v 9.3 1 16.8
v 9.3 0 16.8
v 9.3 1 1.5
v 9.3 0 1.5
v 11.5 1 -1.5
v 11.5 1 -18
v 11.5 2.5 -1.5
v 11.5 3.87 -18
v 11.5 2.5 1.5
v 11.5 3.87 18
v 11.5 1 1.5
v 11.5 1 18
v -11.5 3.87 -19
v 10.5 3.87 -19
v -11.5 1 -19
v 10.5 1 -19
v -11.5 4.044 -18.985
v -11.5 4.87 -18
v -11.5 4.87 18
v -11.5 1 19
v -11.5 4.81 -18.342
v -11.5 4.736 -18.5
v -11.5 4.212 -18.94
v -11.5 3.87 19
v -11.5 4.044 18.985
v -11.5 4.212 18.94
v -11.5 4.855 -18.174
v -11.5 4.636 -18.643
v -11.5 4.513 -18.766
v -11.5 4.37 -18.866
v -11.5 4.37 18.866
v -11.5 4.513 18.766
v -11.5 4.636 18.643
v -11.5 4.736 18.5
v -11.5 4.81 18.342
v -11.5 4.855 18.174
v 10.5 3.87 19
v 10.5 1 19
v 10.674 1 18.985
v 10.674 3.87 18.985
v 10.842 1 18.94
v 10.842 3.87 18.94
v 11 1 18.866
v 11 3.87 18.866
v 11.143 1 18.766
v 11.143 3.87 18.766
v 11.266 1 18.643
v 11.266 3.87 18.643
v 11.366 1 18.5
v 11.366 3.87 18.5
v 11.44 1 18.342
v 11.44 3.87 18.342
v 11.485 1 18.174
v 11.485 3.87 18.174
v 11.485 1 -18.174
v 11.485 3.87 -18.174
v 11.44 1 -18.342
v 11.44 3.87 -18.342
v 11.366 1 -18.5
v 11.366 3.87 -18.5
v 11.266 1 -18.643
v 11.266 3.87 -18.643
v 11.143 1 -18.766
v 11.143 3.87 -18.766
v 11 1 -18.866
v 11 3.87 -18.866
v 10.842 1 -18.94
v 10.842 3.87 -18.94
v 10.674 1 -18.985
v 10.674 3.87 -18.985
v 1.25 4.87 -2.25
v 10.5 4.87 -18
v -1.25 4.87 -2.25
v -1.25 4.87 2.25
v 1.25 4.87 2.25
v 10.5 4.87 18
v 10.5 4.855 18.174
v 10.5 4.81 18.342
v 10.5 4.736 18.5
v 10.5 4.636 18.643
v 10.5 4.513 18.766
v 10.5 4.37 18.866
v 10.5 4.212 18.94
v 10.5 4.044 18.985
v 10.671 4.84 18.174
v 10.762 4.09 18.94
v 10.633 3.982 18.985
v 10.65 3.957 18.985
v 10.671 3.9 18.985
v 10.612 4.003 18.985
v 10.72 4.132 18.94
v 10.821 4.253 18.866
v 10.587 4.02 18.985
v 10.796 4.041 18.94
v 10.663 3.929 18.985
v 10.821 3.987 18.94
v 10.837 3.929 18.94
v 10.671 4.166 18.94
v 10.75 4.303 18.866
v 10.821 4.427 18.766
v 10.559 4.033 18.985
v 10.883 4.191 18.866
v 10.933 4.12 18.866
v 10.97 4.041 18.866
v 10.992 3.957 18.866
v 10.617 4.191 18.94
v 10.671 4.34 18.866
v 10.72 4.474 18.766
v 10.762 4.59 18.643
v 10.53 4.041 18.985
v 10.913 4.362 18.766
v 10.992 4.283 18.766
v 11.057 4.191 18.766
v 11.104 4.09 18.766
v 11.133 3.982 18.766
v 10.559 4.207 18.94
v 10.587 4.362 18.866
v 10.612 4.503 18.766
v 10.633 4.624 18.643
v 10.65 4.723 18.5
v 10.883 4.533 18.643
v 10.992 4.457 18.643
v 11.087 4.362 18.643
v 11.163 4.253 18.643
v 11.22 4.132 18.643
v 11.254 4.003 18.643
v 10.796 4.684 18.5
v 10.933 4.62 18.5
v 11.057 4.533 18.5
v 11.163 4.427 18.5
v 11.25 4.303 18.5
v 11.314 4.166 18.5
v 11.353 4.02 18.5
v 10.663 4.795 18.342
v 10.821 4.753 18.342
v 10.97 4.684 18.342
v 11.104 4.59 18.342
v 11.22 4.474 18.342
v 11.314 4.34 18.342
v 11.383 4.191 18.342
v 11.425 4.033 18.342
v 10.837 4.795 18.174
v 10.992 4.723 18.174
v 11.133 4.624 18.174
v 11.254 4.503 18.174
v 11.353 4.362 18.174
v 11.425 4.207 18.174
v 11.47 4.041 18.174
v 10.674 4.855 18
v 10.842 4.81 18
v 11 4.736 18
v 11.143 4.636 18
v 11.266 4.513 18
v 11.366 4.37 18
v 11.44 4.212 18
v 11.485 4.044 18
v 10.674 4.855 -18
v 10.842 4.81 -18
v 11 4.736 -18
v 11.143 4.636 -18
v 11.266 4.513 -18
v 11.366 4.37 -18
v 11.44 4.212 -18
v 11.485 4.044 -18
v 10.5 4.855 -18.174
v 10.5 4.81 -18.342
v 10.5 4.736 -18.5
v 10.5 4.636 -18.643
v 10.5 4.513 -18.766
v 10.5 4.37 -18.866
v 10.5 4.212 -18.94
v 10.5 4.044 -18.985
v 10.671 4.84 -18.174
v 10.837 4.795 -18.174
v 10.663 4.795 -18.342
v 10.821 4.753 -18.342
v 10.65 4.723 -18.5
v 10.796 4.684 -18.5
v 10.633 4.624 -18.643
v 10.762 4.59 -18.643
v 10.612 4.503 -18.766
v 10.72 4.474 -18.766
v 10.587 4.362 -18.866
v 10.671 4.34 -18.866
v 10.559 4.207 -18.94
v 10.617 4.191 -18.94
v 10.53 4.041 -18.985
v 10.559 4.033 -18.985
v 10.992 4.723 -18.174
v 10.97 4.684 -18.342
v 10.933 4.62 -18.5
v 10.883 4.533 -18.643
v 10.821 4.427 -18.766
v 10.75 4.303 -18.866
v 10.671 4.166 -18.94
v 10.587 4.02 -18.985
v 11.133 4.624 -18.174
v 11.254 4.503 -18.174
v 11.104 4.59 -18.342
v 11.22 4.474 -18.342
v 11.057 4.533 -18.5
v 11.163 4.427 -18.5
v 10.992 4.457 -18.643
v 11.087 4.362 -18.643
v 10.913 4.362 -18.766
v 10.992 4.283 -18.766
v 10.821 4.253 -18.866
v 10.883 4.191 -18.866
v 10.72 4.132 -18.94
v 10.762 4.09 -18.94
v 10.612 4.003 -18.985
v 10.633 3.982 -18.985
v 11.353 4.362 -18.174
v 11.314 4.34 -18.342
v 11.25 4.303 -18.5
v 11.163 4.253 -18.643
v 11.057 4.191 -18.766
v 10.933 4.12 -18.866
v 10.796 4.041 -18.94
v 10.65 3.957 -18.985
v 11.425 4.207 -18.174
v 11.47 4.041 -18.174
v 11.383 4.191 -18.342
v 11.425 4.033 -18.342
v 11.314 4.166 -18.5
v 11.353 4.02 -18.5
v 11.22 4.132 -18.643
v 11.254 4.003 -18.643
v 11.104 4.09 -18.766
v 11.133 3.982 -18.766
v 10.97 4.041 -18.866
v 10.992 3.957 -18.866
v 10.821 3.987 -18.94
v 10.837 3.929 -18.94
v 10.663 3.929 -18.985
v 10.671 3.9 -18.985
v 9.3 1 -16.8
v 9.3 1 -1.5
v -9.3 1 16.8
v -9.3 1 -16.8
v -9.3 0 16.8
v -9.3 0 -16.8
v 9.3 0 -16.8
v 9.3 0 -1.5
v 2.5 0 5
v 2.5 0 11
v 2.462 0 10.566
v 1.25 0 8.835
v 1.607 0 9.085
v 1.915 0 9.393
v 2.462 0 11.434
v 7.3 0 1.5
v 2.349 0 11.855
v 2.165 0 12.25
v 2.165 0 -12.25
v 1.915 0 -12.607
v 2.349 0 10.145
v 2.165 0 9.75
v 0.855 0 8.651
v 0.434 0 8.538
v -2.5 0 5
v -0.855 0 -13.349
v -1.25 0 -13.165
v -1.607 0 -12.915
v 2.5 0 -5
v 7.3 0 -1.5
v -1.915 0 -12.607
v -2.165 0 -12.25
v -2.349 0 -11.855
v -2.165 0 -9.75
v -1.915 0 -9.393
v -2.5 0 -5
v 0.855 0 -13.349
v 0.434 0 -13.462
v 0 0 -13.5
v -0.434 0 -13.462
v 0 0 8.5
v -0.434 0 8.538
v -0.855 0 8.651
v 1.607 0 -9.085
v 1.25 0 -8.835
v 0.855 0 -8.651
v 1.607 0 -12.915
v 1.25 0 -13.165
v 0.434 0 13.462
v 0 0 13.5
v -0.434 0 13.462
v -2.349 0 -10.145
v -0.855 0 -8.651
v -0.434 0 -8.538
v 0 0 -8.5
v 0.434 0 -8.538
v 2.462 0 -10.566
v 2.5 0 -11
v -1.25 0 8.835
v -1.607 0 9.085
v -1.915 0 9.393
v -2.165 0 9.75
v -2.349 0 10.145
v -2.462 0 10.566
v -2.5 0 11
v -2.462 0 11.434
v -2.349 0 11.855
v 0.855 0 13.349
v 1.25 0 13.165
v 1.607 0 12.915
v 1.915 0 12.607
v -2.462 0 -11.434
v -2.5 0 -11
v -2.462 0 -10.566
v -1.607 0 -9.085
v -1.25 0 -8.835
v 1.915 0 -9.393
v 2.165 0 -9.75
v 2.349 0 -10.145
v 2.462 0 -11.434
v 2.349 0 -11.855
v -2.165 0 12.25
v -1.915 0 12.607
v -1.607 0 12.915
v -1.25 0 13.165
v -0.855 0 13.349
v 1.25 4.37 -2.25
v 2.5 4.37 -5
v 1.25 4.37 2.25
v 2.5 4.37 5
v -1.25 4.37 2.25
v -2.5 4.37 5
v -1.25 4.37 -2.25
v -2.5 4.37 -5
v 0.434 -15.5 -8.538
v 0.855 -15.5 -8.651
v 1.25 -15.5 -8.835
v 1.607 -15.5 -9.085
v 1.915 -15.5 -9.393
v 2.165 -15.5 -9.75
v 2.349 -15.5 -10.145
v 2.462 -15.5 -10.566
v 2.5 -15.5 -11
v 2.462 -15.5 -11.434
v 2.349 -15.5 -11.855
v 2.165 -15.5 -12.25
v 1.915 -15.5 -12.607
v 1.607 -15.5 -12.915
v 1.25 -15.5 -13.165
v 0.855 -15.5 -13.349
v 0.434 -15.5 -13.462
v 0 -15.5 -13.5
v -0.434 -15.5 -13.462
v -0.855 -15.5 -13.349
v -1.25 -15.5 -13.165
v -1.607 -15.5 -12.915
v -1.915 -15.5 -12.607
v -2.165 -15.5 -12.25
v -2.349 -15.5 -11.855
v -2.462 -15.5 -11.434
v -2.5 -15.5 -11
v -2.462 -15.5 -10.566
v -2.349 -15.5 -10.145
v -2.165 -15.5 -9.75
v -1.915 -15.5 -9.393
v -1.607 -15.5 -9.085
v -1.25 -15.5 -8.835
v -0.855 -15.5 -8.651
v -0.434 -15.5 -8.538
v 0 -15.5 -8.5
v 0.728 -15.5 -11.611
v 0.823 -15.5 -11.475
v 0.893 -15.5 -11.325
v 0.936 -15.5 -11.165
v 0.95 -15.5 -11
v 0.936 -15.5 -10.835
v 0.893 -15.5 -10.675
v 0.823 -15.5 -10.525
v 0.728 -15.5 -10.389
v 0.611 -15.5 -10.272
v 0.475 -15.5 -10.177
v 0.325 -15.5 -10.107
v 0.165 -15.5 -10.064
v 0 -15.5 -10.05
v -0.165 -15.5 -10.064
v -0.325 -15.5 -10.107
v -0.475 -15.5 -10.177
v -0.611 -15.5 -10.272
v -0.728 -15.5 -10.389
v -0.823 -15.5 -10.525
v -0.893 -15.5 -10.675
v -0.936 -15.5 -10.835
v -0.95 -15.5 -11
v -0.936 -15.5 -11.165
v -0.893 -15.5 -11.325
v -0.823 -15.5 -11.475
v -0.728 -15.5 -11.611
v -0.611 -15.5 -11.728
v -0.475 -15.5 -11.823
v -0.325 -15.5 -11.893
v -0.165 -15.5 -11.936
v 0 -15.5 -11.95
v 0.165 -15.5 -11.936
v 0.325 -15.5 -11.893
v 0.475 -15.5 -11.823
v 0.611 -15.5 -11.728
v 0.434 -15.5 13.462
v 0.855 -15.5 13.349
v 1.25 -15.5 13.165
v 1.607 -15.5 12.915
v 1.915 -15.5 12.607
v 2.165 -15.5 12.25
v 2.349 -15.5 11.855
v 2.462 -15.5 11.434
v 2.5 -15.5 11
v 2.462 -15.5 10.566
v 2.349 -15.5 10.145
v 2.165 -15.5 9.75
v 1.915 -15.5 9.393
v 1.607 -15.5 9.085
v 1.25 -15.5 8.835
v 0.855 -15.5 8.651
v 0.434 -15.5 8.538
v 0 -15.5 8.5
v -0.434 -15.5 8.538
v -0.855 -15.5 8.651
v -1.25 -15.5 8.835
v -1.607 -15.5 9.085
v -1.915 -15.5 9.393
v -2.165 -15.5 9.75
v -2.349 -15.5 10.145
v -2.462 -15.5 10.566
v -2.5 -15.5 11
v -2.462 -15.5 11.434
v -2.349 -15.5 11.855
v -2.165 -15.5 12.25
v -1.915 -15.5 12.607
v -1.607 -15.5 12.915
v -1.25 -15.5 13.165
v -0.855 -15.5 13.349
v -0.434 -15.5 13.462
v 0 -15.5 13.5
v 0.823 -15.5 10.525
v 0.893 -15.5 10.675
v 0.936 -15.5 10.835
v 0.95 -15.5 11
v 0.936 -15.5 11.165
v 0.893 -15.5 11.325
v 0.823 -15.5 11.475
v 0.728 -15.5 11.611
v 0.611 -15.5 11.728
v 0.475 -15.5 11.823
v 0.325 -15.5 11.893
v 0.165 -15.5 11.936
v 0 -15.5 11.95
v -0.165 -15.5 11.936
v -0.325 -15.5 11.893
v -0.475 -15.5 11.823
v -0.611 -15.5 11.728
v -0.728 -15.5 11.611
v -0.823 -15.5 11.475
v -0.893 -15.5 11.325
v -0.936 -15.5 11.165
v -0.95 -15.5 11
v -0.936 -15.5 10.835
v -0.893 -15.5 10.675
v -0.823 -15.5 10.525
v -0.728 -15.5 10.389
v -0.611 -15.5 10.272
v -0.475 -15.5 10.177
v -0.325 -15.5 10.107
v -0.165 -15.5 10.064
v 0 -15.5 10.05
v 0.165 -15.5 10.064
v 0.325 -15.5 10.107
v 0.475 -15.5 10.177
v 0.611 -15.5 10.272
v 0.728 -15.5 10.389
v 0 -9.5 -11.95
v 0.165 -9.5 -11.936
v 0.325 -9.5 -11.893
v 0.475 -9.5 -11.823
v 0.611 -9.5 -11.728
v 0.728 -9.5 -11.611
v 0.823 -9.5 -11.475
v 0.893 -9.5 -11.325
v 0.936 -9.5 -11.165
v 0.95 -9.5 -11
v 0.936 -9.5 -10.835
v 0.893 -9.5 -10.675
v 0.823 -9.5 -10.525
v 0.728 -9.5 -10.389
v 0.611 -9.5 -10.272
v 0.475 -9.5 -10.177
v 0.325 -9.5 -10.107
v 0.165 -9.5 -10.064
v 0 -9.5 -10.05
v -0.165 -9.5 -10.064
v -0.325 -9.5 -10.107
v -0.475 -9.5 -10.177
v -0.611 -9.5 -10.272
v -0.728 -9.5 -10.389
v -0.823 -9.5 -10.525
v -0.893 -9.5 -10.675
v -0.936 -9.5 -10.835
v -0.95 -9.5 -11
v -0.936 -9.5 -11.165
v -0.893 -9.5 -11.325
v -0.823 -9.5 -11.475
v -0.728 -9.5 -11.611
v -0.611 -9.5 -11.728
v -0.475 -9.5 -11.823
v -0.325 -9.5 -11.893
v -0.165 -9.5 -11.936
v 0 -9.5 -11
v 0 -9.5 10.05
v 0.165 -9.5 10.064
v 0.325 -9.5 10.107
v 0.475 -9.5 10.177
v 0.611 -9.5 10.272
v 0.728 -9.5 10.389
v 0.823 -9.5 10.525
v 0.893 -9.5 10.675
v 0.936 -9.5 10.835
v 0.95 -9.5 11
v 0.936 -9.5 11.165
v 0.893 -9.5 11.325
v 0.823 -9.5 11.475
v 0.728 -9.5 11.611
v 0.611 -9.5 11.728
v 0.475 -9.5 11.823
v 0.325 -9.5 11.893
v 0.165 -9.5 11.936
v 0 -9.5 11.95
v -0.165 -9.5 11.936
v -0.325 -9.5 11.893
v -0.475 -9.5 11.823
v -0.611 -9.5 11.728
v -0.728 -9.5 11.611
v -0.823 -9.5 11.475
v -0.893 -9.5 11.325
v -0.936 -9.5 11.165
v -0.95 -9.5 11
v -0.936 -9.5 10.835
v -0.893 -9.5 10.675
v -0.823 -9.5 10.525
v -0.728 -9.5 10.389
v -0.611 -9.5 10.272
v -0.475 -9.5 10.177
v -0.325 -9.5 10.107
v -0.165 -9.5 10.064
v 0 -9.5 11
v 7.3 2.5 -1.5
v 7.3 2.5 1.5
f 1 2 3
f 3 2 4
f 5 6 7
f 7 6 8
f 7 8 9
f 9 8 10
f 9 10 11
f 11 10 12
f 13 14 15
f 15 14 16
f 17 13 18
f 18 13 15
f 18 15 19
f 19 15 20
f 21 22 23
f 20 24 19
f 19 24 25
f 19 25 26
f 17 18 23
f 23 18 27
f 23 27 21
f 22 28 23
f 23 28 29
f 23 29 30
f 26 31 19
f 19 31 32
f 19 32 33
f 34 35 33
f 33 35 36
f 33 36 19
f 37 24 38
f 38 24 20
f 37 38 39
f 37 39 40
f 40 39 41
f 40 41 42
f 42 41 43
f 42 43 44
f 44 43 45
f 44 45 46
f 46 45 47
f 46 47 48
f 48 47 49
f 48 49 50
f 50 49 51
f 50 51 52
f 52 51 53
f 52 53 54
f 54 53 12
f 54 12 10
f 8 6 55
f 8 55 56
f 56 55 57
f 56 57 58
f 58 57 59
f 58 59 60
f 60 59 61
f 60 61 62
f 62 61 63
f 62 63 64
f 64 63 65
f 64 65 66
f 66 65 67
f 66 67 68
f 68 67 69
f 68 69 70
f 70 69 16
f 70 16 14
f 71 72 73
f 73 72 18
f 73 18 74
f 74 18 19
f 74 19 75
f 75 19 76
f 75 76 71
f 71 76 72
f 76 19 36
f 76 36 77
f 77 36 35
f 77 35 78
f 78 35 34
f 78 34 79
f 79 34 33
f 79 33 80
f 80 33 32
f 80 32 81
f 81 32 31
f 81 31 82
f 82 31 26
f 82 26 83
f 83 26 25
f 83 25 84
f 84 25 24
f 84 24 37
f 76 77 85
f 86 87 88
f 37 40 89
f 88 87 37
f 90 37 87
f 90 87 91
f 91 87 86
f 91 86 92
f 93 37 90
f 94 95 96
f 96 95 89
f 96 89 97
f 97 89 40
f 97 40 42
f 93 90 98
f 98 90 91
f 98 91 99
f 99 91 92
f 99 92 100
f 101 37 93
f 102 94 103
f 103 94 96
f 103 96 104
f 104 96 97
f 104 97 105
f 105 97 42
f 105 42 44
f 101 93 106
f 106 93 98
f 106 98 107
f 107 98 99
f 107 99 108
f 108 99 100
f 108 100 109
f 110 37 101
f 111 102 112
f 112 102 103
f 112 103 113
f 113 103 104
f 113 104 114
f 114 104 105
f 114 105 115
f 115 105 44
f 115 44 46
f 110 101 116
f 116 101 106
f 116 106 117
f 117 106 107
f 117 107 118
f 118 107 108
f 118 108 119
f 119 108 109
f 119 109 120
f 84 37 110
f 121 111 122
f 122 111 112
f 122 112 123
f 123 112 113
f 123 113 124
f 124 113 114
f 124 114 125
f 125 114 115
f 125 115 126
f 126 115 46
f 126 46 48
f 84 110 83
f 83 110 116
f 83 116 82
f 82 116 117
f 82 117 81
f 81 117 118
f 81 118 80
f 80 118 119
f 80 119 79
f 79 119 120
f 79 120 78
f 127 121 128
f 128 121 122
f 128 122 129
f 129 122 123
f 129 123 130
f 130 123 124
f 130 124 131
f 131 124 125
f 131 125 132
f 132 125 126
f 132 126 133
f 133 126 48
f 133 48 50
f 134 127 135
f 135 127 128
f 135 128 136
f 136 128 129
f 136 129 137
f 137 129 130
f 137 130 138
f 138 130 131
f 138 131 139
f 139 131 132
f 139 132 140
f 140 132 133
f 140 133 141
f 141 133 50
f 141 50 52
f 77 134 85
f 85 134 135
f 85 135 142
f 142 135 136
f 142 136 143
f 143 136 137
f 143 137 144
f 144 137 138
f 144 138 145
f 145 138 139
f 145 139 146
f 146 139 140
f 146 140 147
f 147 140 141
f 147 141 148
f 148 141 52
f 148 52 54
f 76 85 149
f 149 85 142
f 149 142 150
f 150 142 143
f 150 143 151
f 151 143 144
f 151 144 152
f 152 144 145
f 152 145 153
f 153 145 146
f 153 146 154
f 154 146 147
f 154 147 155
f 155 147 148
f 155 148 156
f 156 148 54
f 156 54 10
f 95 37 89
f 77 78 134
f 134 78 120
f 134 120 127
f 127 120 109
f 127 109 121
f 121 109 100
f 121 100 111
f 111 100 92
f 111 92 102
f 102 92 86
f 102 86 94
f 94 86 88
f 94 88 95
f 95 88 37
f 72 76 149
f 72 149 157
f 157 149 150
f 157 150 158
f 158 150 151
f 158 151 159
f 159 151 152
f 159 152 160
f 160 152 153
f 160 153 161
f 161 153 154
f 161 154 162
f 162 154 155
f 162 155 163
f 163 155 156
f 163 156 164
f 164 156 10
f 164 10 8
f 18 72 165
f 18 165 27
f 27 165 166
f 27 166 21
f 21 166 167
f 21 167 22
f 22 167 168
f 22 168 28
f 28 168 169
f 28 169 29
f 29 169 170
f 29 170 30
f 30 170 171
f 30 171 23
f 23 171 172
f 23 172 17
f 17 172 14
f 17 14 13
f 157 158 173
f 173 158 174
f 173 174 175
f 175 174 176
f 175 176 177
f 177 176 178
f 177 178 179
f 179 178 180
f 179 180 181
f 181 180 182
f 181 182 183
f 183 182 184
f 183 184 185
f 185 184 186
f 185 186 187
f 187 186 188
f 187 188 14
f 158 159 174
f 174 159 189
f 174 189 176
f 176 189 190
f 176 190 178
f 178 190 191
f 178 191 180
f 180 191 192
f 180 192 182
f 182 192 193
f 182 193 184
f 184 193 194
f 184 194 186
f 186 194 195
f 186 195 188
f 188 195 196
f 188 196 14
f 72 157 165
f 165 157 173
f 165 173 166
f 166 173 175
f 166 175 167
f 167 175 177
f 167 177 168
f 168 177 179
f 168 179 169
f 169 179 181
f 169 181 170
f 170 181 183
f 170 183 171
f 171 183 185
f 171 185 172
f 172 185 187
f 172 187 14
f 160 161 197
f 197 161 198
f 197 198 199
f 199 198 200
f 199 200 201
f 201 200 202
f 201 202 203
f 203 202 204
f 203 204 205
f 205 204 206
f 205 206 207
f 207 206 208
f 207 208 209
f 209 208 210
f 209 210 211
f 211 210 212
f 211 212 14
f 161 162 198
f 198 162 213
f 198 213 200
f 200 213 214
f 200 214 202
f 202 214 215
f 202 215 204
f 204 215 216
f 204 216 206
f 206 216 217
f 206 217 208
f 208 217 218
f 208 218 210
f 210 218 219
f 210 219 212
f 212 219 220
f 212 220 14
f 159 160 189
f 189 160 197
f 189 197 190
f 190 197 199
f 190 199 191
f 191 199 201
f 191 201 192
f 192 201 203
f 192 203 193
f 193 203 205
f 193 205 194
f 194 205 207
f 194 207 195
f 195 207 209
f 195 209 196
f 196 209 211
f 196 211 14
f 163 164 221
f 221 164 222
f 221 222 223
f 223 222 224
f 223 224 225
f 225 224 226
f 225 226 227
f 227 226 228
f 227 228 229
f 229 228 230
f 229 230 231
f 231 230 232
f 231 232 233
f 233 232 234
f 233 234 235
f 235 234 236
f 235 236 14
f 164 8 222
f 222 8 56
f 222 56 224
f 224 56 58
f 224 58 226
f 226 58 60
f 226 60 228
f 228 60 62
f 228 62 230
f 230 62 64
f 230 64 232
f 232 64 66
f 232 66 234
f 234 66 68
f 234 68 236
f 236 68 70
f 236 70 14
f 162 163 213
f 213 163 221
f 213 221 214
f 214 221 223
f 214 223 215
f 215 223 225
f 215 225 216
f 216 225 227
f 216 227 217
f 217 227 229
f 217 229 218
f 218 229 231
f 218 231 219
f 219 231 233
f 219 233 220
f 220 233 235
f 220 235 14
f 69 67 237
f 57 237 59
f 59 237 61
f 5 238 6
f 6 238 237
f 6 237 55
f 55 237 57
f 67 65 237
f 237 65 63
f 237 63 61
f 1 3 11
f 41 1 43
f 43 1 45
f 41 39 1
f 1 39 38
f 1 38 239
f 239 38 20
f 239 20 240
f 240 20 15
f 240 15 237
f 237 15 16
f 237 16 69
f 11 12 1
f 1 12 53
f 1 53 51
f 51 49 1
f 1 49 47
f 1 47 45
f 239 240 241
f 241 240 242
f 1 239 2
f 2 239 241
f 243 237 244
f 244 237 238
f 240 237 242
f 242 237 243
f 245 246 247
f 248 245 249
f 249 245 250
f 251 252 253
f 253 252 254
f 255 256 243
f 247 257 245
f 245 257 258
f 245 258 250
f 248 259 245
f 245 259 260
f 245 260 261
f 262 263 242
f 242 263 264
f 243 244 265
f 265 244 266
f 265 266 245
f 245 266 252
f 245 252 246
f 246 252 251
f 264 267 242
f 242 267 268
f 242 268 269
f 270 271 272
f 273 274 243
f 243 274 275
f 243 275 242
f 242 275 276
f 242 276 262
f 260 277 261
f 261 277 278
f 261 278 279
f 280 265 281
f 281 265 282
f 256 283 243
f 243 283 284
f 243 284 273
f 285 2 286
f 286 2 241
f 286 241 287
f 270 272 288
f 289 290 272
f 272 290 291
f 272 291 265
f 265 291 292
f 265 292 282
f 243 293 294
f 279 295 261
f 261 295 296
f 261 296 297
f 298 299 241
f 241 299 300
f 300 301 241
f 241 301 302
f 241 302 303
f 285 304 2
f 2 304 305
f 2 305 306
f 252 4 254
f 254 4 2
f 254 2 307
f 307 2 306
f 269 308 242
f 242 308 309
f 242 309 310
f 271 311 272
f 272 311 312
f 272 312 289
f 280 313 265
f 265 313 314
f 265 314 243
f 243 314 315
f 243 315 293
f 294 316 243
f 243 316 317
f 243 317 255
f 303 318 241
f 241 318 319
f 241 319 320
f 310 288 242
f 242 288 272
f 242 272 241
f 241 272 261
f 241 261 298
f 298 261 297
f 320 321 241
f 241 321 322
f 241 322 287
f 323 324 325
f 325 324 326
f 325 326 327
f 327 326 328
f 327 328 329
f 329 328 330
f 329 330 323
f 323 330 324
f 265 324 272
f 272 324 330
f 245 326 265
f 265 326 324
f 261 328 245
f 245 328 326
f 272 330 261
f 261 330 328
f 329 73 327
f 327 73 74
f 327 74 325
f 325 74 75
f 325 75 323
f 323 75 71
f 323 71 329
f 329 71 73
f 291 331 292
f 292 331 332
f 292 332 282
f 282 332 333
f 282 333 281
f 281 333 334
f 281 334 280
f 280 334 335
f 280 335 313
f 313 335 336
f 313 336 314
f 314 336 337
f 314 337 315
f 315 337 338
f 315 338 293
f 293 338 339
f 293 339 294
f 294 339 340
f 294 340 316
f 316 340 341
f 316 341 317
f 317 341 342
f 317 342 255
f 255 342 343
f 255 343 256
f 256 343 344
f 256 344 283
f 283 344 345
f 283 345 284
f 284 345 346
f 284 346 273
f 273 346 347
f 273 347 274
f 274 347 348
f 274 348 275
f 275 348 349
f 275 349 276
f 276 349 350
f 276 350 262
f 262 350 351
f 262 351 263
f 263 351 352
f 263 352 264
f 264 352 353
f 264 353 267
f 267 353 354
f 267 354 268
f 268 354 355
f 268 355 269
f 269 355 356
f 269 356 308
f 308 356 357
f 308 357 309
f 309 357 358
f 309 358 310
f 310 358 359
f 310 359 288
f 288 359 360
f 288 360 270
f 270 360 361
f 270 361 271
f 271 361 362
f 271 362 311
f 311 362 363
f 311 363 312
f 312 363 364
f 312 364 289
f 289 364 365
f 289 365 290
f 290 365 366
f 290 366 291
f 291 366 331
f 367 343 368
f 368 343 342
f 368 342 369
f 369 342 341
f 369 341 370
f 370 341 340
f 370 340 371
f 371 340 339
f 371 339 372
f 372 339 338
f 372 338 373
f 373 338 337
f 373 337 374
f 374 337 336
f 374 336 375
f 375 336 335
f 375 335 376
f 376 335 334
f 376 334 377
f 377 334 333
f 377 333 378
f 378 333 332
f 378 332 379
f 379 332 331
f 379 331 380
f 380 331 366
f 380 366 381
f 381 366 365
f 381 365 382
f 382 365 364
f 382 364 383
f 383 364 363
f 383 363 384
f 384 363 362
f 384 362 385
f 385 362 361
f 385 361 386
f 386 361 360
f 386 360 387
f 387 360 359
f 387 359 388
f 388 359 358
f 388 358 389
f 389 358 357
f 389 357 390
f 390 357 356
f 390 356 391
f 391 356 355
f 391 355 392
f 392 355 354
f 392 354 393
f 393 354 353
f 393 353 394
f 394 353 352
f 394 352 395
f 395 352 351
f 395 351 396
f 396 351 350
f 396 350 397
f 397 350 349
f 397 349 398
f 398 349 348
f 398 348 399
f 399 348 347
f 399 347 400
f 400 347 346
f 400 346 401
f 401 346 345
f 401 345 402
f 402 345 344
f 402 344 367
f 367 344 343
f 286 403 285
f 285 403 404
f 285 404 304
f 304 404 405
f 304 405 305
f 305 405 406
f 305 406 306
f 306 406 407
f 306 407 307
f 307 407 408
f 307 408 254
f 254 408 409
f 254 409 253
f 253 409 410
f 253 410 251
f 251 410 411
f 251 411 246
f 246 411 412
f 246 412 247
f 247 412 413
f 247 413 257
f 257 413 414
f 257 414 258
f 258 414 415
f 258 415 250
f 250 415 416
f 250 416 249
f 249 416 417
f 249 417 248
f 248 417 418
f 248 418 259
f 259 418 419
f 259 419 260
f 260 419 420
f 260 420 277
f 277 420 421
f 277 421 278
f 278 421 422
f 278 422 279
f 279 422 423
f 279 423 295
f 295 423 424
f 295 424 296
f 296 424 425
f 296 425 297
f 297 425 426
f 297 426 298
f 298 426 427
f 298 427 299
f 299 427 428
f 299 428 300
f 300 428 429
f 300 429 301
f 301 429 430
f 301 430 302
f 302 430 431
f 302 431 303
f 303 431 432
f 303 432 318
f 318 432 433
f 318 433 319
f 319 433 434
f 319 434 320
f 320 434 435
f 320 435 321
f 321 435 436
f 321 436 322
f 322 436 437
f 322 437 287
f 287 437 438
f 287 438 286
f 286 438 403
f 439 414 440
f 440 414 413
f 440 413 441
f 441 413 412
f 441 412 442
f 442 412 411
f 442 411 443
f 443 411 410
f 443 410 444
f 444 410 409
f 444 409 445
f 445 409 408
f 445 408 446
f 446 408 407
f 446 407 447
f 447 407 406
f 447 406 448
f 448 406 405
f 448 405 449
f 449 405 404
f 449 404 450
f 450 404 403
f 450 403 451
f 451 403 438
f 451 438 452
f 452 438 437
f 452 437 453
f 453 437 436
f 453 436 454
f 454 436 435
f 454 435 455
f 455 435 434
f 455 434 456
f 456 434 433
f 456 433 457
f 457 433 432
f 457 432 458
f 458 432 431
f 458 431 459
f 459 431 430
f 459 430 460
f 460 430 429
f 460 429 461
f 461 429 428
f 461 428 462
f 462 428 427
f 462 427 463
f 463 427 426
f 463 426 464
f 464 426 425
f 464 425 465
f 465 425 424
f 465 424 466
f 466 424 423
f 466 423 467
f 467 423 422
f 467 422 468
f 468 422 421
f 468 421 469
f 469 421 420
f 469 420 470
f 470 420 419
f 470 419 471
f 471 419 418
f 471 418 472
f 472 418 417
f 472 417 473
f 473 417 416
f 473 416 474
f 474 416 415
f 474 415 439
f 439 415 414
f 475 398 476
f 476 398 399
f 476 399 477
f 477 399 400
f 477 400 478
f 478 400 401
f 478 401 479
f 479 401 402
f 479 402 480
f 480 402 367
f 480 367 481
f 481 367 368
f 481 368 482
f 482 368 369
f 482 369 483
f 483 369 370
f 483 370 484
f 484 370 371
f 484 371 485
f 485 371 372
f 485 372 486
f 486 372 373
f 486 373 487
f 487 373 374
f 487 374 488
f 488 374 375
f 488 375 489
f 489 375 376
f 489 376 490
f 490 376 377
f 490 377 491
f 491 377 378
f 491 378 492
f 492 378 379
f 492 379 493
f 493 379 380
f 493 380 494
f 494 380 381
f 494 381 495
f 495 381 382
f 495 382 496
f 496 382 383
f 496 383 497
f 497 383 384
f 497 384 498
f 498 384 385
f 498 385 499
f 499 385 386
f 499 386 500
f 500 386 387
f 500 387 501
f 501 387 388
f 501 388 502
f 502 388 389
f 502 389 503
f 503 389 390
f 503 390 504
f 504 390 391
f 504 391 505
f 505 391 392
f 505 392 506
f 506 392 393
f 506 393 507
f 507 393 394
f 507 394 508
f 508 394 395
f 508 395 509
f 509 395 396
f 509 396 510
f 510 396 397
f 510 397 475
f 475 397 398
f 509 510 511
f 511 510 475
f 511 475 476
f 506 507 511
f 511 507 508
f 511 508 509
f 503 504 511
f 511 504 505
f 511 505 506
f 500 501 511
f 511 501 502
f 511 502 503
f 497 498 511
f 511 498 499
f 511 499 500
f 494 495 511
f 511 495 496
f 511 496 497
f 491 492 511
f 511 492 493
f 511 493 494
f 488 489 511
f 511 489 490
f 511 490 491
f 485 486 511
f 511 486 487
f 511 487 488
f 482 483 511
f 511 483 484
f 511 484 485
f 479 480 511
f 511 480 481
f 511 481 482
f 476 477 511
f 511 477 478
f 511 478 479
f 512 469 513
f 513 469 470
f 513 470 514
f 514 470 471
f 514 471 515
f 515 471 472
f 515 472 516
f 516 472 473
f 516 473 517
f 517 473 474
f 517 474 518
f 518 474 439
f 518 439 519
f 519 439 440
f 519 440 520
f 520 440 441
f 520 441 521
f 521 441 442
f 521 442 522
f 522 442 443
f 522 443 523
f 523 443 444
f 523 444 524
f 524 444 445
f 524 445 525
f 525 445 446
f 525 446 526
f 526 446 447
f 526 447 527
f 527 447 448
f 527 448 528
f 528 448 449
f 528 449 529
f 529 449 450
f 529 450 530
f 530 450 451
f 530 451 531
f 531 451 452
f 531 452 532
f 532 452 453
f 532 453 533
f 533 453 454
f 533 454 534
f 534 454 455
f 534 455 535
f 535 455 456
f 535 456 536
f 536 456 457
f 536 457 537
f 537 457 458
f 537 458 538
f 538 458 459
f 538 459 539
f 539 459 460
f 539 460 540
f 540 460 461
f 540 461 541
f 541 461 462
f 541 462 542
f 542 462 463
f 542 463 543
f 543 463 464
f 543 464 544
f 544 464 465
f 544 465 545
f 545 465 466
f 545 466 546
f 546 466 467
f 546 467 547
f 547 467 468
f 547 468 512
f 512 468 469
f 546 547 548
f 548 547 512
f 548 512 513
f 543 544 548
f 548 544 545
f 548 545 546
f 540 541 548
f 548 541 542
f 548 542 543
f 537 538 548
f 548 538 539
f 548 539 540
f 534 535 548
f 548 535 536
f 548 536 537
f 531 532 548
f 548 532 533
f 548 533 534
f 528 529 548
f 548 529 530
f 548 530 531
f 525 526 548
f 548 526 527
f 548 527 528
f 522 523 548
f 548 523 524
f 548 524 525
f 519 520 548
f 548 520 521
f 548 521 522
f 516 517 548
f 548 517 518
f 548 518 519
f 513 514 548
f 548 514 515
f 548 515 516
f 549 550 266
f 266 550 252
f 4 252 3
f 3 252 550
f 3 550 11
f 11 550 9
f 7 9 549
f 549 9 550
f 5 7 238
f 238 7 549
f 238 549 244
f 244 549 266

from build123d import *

# Parameters (mm, degrees)
SKETCH1_W           = 23
SKETCH1_H           = 38
BOSS_EXTRUDE1_DEPTH = 4.87
FILLET1_R           = 1
SKETCH2_W           = 23
SKETCH2_H           = 38
SKETCH2_W_2         = 18.6
SKETCH2_H_2         = 33.6
CUT_EXTRUDE1_DEPTH  = 1
SKETCH3_W           = 5
SKETCH3_H           = 10
CUT_EXTRUDE2_DEPTH  = 4.37
CUT_EXTRUDE3_REACH  = 24.635
SKETCH4_W           = 2.5
SKETCH4_H           = 4.5
SKETCH5_R           = 2.5
BOSS_EXTRUDE2_DEPTH = 15.5
SKETCH6_R           = 0.95
CUT_EXTRUDE4_DEPTH  = 6
SKETCH7_W           = 3
SKETCH7_H           = 5
CUT_EXTRUDE5_DEPTH  = 4.2


with BuildPart() as part:
    # Sketch1 → Boss-Extrude1 (new body)
    with BuildSketch(Plane(origin=(0, 0, 0), x_dir=(1, 0, 0), z_dir=(0, 1, 0))):
        Rectangle(SKETCH1_W, SKETCH1_H)
    extrude(amount=BOSS_EXTRUDE1_DEPTH)

    # Fillet1
    fillet1_edges = [part.edges().sort_by_distance(p)[0] for p in [
        (0, 4.87, 19),
        (11.5, 4.87, 0),
        (0, 4.87, -19),
        (11.5, 2.435, 19),
        (11.5, 2.435, -19),
    ]]
    fillet(fillet1_edges, radius=FILLET1_R)

    # Sketch2 → Cut-Extrude1 (cut)
    with BuildSketch(Plane.XZ):
        Rectangle(SKETCH2_W, SKETCH2_H)
        Rectangle(SKETCH2_W_2, SKETCH2_H_2, mode=Mode.SUBTRACT)
    extrude(amount=-CUT_EXTRUDE1_DEPTH, mode=Mode.SUBTRACT)

    # Sketch3 → Cut-Extrude2 (cut)
    with BuildSketch(Plane.XZ):
        Rectangle(SKETCH3_W, SKETCH3_H)
    extrude(amount=-CUT_EXTRUDE2_DEPTH, mode=Mode.SUBTRACT)

    # Sketch4 → Cut-Extrude3 (cut, up to next)
    with BuildSketch(Plane.XZ.offset(-4.37), mode=Mode.PRIVATE) as cut_extrude3_sk1:
        Rectangle(SKETCH4_W, SKETCH4_H)
    cut_extrude3_tool1 = extrude(cut_extrude3_sk1.sketch, amount=-CUT_EXTRUDE3_REACH, mode=Mode.PRIVATE) & part.part
    add(cut_extrude3_tool1.solids().sort_by_distance((0, 4.37, 0))[0], mode=Mode.SUBTRACT)

    # Sketch5 → Boss-Extrude2 (add)
    with BuildSketch(Plane.XZ):
        with Locations(Location((0, -11, 0), (0, 0, 90))):
            Circle(SKETCH5_R)
        with Locations(Location((0, 11, 0), (0, 0, 90))):
            Circle(SKETCH5_R)
    extrude(amount=BOSS_EXTRUDE2_DEPTH)

    # Sketch6 → Cut-Extrude4 (cut)
    with BuildSketch(Plane.XZ.offset(15.5)):
        with Locations(Location((0, -11, 0), (0, 0, 270))):
            Circle(SKETCH6_R)
        with Locations(Location((0, 11, 0), (0, 0, 270))):
            Circle(SKETCH6_R)
    extrude(amount=-CUT_EXTRUDE4_DEPTH, mode=Mode.SUBTRACT)

    # Sketch7 → Cut-Extrude5 (cut)
    with BuildSketch(Plane(origin=(11.5, 0, 0), x_dir=(0, 0, -1), z_dir=(1, 0, 0))):
        Rectangle(SKETCH7_W, SKETCH7_H)
    extrude(amount=-CUT_EXTRUDE5_DEPTH, mode=Mode.SUBTRACT)


solid = part.part
